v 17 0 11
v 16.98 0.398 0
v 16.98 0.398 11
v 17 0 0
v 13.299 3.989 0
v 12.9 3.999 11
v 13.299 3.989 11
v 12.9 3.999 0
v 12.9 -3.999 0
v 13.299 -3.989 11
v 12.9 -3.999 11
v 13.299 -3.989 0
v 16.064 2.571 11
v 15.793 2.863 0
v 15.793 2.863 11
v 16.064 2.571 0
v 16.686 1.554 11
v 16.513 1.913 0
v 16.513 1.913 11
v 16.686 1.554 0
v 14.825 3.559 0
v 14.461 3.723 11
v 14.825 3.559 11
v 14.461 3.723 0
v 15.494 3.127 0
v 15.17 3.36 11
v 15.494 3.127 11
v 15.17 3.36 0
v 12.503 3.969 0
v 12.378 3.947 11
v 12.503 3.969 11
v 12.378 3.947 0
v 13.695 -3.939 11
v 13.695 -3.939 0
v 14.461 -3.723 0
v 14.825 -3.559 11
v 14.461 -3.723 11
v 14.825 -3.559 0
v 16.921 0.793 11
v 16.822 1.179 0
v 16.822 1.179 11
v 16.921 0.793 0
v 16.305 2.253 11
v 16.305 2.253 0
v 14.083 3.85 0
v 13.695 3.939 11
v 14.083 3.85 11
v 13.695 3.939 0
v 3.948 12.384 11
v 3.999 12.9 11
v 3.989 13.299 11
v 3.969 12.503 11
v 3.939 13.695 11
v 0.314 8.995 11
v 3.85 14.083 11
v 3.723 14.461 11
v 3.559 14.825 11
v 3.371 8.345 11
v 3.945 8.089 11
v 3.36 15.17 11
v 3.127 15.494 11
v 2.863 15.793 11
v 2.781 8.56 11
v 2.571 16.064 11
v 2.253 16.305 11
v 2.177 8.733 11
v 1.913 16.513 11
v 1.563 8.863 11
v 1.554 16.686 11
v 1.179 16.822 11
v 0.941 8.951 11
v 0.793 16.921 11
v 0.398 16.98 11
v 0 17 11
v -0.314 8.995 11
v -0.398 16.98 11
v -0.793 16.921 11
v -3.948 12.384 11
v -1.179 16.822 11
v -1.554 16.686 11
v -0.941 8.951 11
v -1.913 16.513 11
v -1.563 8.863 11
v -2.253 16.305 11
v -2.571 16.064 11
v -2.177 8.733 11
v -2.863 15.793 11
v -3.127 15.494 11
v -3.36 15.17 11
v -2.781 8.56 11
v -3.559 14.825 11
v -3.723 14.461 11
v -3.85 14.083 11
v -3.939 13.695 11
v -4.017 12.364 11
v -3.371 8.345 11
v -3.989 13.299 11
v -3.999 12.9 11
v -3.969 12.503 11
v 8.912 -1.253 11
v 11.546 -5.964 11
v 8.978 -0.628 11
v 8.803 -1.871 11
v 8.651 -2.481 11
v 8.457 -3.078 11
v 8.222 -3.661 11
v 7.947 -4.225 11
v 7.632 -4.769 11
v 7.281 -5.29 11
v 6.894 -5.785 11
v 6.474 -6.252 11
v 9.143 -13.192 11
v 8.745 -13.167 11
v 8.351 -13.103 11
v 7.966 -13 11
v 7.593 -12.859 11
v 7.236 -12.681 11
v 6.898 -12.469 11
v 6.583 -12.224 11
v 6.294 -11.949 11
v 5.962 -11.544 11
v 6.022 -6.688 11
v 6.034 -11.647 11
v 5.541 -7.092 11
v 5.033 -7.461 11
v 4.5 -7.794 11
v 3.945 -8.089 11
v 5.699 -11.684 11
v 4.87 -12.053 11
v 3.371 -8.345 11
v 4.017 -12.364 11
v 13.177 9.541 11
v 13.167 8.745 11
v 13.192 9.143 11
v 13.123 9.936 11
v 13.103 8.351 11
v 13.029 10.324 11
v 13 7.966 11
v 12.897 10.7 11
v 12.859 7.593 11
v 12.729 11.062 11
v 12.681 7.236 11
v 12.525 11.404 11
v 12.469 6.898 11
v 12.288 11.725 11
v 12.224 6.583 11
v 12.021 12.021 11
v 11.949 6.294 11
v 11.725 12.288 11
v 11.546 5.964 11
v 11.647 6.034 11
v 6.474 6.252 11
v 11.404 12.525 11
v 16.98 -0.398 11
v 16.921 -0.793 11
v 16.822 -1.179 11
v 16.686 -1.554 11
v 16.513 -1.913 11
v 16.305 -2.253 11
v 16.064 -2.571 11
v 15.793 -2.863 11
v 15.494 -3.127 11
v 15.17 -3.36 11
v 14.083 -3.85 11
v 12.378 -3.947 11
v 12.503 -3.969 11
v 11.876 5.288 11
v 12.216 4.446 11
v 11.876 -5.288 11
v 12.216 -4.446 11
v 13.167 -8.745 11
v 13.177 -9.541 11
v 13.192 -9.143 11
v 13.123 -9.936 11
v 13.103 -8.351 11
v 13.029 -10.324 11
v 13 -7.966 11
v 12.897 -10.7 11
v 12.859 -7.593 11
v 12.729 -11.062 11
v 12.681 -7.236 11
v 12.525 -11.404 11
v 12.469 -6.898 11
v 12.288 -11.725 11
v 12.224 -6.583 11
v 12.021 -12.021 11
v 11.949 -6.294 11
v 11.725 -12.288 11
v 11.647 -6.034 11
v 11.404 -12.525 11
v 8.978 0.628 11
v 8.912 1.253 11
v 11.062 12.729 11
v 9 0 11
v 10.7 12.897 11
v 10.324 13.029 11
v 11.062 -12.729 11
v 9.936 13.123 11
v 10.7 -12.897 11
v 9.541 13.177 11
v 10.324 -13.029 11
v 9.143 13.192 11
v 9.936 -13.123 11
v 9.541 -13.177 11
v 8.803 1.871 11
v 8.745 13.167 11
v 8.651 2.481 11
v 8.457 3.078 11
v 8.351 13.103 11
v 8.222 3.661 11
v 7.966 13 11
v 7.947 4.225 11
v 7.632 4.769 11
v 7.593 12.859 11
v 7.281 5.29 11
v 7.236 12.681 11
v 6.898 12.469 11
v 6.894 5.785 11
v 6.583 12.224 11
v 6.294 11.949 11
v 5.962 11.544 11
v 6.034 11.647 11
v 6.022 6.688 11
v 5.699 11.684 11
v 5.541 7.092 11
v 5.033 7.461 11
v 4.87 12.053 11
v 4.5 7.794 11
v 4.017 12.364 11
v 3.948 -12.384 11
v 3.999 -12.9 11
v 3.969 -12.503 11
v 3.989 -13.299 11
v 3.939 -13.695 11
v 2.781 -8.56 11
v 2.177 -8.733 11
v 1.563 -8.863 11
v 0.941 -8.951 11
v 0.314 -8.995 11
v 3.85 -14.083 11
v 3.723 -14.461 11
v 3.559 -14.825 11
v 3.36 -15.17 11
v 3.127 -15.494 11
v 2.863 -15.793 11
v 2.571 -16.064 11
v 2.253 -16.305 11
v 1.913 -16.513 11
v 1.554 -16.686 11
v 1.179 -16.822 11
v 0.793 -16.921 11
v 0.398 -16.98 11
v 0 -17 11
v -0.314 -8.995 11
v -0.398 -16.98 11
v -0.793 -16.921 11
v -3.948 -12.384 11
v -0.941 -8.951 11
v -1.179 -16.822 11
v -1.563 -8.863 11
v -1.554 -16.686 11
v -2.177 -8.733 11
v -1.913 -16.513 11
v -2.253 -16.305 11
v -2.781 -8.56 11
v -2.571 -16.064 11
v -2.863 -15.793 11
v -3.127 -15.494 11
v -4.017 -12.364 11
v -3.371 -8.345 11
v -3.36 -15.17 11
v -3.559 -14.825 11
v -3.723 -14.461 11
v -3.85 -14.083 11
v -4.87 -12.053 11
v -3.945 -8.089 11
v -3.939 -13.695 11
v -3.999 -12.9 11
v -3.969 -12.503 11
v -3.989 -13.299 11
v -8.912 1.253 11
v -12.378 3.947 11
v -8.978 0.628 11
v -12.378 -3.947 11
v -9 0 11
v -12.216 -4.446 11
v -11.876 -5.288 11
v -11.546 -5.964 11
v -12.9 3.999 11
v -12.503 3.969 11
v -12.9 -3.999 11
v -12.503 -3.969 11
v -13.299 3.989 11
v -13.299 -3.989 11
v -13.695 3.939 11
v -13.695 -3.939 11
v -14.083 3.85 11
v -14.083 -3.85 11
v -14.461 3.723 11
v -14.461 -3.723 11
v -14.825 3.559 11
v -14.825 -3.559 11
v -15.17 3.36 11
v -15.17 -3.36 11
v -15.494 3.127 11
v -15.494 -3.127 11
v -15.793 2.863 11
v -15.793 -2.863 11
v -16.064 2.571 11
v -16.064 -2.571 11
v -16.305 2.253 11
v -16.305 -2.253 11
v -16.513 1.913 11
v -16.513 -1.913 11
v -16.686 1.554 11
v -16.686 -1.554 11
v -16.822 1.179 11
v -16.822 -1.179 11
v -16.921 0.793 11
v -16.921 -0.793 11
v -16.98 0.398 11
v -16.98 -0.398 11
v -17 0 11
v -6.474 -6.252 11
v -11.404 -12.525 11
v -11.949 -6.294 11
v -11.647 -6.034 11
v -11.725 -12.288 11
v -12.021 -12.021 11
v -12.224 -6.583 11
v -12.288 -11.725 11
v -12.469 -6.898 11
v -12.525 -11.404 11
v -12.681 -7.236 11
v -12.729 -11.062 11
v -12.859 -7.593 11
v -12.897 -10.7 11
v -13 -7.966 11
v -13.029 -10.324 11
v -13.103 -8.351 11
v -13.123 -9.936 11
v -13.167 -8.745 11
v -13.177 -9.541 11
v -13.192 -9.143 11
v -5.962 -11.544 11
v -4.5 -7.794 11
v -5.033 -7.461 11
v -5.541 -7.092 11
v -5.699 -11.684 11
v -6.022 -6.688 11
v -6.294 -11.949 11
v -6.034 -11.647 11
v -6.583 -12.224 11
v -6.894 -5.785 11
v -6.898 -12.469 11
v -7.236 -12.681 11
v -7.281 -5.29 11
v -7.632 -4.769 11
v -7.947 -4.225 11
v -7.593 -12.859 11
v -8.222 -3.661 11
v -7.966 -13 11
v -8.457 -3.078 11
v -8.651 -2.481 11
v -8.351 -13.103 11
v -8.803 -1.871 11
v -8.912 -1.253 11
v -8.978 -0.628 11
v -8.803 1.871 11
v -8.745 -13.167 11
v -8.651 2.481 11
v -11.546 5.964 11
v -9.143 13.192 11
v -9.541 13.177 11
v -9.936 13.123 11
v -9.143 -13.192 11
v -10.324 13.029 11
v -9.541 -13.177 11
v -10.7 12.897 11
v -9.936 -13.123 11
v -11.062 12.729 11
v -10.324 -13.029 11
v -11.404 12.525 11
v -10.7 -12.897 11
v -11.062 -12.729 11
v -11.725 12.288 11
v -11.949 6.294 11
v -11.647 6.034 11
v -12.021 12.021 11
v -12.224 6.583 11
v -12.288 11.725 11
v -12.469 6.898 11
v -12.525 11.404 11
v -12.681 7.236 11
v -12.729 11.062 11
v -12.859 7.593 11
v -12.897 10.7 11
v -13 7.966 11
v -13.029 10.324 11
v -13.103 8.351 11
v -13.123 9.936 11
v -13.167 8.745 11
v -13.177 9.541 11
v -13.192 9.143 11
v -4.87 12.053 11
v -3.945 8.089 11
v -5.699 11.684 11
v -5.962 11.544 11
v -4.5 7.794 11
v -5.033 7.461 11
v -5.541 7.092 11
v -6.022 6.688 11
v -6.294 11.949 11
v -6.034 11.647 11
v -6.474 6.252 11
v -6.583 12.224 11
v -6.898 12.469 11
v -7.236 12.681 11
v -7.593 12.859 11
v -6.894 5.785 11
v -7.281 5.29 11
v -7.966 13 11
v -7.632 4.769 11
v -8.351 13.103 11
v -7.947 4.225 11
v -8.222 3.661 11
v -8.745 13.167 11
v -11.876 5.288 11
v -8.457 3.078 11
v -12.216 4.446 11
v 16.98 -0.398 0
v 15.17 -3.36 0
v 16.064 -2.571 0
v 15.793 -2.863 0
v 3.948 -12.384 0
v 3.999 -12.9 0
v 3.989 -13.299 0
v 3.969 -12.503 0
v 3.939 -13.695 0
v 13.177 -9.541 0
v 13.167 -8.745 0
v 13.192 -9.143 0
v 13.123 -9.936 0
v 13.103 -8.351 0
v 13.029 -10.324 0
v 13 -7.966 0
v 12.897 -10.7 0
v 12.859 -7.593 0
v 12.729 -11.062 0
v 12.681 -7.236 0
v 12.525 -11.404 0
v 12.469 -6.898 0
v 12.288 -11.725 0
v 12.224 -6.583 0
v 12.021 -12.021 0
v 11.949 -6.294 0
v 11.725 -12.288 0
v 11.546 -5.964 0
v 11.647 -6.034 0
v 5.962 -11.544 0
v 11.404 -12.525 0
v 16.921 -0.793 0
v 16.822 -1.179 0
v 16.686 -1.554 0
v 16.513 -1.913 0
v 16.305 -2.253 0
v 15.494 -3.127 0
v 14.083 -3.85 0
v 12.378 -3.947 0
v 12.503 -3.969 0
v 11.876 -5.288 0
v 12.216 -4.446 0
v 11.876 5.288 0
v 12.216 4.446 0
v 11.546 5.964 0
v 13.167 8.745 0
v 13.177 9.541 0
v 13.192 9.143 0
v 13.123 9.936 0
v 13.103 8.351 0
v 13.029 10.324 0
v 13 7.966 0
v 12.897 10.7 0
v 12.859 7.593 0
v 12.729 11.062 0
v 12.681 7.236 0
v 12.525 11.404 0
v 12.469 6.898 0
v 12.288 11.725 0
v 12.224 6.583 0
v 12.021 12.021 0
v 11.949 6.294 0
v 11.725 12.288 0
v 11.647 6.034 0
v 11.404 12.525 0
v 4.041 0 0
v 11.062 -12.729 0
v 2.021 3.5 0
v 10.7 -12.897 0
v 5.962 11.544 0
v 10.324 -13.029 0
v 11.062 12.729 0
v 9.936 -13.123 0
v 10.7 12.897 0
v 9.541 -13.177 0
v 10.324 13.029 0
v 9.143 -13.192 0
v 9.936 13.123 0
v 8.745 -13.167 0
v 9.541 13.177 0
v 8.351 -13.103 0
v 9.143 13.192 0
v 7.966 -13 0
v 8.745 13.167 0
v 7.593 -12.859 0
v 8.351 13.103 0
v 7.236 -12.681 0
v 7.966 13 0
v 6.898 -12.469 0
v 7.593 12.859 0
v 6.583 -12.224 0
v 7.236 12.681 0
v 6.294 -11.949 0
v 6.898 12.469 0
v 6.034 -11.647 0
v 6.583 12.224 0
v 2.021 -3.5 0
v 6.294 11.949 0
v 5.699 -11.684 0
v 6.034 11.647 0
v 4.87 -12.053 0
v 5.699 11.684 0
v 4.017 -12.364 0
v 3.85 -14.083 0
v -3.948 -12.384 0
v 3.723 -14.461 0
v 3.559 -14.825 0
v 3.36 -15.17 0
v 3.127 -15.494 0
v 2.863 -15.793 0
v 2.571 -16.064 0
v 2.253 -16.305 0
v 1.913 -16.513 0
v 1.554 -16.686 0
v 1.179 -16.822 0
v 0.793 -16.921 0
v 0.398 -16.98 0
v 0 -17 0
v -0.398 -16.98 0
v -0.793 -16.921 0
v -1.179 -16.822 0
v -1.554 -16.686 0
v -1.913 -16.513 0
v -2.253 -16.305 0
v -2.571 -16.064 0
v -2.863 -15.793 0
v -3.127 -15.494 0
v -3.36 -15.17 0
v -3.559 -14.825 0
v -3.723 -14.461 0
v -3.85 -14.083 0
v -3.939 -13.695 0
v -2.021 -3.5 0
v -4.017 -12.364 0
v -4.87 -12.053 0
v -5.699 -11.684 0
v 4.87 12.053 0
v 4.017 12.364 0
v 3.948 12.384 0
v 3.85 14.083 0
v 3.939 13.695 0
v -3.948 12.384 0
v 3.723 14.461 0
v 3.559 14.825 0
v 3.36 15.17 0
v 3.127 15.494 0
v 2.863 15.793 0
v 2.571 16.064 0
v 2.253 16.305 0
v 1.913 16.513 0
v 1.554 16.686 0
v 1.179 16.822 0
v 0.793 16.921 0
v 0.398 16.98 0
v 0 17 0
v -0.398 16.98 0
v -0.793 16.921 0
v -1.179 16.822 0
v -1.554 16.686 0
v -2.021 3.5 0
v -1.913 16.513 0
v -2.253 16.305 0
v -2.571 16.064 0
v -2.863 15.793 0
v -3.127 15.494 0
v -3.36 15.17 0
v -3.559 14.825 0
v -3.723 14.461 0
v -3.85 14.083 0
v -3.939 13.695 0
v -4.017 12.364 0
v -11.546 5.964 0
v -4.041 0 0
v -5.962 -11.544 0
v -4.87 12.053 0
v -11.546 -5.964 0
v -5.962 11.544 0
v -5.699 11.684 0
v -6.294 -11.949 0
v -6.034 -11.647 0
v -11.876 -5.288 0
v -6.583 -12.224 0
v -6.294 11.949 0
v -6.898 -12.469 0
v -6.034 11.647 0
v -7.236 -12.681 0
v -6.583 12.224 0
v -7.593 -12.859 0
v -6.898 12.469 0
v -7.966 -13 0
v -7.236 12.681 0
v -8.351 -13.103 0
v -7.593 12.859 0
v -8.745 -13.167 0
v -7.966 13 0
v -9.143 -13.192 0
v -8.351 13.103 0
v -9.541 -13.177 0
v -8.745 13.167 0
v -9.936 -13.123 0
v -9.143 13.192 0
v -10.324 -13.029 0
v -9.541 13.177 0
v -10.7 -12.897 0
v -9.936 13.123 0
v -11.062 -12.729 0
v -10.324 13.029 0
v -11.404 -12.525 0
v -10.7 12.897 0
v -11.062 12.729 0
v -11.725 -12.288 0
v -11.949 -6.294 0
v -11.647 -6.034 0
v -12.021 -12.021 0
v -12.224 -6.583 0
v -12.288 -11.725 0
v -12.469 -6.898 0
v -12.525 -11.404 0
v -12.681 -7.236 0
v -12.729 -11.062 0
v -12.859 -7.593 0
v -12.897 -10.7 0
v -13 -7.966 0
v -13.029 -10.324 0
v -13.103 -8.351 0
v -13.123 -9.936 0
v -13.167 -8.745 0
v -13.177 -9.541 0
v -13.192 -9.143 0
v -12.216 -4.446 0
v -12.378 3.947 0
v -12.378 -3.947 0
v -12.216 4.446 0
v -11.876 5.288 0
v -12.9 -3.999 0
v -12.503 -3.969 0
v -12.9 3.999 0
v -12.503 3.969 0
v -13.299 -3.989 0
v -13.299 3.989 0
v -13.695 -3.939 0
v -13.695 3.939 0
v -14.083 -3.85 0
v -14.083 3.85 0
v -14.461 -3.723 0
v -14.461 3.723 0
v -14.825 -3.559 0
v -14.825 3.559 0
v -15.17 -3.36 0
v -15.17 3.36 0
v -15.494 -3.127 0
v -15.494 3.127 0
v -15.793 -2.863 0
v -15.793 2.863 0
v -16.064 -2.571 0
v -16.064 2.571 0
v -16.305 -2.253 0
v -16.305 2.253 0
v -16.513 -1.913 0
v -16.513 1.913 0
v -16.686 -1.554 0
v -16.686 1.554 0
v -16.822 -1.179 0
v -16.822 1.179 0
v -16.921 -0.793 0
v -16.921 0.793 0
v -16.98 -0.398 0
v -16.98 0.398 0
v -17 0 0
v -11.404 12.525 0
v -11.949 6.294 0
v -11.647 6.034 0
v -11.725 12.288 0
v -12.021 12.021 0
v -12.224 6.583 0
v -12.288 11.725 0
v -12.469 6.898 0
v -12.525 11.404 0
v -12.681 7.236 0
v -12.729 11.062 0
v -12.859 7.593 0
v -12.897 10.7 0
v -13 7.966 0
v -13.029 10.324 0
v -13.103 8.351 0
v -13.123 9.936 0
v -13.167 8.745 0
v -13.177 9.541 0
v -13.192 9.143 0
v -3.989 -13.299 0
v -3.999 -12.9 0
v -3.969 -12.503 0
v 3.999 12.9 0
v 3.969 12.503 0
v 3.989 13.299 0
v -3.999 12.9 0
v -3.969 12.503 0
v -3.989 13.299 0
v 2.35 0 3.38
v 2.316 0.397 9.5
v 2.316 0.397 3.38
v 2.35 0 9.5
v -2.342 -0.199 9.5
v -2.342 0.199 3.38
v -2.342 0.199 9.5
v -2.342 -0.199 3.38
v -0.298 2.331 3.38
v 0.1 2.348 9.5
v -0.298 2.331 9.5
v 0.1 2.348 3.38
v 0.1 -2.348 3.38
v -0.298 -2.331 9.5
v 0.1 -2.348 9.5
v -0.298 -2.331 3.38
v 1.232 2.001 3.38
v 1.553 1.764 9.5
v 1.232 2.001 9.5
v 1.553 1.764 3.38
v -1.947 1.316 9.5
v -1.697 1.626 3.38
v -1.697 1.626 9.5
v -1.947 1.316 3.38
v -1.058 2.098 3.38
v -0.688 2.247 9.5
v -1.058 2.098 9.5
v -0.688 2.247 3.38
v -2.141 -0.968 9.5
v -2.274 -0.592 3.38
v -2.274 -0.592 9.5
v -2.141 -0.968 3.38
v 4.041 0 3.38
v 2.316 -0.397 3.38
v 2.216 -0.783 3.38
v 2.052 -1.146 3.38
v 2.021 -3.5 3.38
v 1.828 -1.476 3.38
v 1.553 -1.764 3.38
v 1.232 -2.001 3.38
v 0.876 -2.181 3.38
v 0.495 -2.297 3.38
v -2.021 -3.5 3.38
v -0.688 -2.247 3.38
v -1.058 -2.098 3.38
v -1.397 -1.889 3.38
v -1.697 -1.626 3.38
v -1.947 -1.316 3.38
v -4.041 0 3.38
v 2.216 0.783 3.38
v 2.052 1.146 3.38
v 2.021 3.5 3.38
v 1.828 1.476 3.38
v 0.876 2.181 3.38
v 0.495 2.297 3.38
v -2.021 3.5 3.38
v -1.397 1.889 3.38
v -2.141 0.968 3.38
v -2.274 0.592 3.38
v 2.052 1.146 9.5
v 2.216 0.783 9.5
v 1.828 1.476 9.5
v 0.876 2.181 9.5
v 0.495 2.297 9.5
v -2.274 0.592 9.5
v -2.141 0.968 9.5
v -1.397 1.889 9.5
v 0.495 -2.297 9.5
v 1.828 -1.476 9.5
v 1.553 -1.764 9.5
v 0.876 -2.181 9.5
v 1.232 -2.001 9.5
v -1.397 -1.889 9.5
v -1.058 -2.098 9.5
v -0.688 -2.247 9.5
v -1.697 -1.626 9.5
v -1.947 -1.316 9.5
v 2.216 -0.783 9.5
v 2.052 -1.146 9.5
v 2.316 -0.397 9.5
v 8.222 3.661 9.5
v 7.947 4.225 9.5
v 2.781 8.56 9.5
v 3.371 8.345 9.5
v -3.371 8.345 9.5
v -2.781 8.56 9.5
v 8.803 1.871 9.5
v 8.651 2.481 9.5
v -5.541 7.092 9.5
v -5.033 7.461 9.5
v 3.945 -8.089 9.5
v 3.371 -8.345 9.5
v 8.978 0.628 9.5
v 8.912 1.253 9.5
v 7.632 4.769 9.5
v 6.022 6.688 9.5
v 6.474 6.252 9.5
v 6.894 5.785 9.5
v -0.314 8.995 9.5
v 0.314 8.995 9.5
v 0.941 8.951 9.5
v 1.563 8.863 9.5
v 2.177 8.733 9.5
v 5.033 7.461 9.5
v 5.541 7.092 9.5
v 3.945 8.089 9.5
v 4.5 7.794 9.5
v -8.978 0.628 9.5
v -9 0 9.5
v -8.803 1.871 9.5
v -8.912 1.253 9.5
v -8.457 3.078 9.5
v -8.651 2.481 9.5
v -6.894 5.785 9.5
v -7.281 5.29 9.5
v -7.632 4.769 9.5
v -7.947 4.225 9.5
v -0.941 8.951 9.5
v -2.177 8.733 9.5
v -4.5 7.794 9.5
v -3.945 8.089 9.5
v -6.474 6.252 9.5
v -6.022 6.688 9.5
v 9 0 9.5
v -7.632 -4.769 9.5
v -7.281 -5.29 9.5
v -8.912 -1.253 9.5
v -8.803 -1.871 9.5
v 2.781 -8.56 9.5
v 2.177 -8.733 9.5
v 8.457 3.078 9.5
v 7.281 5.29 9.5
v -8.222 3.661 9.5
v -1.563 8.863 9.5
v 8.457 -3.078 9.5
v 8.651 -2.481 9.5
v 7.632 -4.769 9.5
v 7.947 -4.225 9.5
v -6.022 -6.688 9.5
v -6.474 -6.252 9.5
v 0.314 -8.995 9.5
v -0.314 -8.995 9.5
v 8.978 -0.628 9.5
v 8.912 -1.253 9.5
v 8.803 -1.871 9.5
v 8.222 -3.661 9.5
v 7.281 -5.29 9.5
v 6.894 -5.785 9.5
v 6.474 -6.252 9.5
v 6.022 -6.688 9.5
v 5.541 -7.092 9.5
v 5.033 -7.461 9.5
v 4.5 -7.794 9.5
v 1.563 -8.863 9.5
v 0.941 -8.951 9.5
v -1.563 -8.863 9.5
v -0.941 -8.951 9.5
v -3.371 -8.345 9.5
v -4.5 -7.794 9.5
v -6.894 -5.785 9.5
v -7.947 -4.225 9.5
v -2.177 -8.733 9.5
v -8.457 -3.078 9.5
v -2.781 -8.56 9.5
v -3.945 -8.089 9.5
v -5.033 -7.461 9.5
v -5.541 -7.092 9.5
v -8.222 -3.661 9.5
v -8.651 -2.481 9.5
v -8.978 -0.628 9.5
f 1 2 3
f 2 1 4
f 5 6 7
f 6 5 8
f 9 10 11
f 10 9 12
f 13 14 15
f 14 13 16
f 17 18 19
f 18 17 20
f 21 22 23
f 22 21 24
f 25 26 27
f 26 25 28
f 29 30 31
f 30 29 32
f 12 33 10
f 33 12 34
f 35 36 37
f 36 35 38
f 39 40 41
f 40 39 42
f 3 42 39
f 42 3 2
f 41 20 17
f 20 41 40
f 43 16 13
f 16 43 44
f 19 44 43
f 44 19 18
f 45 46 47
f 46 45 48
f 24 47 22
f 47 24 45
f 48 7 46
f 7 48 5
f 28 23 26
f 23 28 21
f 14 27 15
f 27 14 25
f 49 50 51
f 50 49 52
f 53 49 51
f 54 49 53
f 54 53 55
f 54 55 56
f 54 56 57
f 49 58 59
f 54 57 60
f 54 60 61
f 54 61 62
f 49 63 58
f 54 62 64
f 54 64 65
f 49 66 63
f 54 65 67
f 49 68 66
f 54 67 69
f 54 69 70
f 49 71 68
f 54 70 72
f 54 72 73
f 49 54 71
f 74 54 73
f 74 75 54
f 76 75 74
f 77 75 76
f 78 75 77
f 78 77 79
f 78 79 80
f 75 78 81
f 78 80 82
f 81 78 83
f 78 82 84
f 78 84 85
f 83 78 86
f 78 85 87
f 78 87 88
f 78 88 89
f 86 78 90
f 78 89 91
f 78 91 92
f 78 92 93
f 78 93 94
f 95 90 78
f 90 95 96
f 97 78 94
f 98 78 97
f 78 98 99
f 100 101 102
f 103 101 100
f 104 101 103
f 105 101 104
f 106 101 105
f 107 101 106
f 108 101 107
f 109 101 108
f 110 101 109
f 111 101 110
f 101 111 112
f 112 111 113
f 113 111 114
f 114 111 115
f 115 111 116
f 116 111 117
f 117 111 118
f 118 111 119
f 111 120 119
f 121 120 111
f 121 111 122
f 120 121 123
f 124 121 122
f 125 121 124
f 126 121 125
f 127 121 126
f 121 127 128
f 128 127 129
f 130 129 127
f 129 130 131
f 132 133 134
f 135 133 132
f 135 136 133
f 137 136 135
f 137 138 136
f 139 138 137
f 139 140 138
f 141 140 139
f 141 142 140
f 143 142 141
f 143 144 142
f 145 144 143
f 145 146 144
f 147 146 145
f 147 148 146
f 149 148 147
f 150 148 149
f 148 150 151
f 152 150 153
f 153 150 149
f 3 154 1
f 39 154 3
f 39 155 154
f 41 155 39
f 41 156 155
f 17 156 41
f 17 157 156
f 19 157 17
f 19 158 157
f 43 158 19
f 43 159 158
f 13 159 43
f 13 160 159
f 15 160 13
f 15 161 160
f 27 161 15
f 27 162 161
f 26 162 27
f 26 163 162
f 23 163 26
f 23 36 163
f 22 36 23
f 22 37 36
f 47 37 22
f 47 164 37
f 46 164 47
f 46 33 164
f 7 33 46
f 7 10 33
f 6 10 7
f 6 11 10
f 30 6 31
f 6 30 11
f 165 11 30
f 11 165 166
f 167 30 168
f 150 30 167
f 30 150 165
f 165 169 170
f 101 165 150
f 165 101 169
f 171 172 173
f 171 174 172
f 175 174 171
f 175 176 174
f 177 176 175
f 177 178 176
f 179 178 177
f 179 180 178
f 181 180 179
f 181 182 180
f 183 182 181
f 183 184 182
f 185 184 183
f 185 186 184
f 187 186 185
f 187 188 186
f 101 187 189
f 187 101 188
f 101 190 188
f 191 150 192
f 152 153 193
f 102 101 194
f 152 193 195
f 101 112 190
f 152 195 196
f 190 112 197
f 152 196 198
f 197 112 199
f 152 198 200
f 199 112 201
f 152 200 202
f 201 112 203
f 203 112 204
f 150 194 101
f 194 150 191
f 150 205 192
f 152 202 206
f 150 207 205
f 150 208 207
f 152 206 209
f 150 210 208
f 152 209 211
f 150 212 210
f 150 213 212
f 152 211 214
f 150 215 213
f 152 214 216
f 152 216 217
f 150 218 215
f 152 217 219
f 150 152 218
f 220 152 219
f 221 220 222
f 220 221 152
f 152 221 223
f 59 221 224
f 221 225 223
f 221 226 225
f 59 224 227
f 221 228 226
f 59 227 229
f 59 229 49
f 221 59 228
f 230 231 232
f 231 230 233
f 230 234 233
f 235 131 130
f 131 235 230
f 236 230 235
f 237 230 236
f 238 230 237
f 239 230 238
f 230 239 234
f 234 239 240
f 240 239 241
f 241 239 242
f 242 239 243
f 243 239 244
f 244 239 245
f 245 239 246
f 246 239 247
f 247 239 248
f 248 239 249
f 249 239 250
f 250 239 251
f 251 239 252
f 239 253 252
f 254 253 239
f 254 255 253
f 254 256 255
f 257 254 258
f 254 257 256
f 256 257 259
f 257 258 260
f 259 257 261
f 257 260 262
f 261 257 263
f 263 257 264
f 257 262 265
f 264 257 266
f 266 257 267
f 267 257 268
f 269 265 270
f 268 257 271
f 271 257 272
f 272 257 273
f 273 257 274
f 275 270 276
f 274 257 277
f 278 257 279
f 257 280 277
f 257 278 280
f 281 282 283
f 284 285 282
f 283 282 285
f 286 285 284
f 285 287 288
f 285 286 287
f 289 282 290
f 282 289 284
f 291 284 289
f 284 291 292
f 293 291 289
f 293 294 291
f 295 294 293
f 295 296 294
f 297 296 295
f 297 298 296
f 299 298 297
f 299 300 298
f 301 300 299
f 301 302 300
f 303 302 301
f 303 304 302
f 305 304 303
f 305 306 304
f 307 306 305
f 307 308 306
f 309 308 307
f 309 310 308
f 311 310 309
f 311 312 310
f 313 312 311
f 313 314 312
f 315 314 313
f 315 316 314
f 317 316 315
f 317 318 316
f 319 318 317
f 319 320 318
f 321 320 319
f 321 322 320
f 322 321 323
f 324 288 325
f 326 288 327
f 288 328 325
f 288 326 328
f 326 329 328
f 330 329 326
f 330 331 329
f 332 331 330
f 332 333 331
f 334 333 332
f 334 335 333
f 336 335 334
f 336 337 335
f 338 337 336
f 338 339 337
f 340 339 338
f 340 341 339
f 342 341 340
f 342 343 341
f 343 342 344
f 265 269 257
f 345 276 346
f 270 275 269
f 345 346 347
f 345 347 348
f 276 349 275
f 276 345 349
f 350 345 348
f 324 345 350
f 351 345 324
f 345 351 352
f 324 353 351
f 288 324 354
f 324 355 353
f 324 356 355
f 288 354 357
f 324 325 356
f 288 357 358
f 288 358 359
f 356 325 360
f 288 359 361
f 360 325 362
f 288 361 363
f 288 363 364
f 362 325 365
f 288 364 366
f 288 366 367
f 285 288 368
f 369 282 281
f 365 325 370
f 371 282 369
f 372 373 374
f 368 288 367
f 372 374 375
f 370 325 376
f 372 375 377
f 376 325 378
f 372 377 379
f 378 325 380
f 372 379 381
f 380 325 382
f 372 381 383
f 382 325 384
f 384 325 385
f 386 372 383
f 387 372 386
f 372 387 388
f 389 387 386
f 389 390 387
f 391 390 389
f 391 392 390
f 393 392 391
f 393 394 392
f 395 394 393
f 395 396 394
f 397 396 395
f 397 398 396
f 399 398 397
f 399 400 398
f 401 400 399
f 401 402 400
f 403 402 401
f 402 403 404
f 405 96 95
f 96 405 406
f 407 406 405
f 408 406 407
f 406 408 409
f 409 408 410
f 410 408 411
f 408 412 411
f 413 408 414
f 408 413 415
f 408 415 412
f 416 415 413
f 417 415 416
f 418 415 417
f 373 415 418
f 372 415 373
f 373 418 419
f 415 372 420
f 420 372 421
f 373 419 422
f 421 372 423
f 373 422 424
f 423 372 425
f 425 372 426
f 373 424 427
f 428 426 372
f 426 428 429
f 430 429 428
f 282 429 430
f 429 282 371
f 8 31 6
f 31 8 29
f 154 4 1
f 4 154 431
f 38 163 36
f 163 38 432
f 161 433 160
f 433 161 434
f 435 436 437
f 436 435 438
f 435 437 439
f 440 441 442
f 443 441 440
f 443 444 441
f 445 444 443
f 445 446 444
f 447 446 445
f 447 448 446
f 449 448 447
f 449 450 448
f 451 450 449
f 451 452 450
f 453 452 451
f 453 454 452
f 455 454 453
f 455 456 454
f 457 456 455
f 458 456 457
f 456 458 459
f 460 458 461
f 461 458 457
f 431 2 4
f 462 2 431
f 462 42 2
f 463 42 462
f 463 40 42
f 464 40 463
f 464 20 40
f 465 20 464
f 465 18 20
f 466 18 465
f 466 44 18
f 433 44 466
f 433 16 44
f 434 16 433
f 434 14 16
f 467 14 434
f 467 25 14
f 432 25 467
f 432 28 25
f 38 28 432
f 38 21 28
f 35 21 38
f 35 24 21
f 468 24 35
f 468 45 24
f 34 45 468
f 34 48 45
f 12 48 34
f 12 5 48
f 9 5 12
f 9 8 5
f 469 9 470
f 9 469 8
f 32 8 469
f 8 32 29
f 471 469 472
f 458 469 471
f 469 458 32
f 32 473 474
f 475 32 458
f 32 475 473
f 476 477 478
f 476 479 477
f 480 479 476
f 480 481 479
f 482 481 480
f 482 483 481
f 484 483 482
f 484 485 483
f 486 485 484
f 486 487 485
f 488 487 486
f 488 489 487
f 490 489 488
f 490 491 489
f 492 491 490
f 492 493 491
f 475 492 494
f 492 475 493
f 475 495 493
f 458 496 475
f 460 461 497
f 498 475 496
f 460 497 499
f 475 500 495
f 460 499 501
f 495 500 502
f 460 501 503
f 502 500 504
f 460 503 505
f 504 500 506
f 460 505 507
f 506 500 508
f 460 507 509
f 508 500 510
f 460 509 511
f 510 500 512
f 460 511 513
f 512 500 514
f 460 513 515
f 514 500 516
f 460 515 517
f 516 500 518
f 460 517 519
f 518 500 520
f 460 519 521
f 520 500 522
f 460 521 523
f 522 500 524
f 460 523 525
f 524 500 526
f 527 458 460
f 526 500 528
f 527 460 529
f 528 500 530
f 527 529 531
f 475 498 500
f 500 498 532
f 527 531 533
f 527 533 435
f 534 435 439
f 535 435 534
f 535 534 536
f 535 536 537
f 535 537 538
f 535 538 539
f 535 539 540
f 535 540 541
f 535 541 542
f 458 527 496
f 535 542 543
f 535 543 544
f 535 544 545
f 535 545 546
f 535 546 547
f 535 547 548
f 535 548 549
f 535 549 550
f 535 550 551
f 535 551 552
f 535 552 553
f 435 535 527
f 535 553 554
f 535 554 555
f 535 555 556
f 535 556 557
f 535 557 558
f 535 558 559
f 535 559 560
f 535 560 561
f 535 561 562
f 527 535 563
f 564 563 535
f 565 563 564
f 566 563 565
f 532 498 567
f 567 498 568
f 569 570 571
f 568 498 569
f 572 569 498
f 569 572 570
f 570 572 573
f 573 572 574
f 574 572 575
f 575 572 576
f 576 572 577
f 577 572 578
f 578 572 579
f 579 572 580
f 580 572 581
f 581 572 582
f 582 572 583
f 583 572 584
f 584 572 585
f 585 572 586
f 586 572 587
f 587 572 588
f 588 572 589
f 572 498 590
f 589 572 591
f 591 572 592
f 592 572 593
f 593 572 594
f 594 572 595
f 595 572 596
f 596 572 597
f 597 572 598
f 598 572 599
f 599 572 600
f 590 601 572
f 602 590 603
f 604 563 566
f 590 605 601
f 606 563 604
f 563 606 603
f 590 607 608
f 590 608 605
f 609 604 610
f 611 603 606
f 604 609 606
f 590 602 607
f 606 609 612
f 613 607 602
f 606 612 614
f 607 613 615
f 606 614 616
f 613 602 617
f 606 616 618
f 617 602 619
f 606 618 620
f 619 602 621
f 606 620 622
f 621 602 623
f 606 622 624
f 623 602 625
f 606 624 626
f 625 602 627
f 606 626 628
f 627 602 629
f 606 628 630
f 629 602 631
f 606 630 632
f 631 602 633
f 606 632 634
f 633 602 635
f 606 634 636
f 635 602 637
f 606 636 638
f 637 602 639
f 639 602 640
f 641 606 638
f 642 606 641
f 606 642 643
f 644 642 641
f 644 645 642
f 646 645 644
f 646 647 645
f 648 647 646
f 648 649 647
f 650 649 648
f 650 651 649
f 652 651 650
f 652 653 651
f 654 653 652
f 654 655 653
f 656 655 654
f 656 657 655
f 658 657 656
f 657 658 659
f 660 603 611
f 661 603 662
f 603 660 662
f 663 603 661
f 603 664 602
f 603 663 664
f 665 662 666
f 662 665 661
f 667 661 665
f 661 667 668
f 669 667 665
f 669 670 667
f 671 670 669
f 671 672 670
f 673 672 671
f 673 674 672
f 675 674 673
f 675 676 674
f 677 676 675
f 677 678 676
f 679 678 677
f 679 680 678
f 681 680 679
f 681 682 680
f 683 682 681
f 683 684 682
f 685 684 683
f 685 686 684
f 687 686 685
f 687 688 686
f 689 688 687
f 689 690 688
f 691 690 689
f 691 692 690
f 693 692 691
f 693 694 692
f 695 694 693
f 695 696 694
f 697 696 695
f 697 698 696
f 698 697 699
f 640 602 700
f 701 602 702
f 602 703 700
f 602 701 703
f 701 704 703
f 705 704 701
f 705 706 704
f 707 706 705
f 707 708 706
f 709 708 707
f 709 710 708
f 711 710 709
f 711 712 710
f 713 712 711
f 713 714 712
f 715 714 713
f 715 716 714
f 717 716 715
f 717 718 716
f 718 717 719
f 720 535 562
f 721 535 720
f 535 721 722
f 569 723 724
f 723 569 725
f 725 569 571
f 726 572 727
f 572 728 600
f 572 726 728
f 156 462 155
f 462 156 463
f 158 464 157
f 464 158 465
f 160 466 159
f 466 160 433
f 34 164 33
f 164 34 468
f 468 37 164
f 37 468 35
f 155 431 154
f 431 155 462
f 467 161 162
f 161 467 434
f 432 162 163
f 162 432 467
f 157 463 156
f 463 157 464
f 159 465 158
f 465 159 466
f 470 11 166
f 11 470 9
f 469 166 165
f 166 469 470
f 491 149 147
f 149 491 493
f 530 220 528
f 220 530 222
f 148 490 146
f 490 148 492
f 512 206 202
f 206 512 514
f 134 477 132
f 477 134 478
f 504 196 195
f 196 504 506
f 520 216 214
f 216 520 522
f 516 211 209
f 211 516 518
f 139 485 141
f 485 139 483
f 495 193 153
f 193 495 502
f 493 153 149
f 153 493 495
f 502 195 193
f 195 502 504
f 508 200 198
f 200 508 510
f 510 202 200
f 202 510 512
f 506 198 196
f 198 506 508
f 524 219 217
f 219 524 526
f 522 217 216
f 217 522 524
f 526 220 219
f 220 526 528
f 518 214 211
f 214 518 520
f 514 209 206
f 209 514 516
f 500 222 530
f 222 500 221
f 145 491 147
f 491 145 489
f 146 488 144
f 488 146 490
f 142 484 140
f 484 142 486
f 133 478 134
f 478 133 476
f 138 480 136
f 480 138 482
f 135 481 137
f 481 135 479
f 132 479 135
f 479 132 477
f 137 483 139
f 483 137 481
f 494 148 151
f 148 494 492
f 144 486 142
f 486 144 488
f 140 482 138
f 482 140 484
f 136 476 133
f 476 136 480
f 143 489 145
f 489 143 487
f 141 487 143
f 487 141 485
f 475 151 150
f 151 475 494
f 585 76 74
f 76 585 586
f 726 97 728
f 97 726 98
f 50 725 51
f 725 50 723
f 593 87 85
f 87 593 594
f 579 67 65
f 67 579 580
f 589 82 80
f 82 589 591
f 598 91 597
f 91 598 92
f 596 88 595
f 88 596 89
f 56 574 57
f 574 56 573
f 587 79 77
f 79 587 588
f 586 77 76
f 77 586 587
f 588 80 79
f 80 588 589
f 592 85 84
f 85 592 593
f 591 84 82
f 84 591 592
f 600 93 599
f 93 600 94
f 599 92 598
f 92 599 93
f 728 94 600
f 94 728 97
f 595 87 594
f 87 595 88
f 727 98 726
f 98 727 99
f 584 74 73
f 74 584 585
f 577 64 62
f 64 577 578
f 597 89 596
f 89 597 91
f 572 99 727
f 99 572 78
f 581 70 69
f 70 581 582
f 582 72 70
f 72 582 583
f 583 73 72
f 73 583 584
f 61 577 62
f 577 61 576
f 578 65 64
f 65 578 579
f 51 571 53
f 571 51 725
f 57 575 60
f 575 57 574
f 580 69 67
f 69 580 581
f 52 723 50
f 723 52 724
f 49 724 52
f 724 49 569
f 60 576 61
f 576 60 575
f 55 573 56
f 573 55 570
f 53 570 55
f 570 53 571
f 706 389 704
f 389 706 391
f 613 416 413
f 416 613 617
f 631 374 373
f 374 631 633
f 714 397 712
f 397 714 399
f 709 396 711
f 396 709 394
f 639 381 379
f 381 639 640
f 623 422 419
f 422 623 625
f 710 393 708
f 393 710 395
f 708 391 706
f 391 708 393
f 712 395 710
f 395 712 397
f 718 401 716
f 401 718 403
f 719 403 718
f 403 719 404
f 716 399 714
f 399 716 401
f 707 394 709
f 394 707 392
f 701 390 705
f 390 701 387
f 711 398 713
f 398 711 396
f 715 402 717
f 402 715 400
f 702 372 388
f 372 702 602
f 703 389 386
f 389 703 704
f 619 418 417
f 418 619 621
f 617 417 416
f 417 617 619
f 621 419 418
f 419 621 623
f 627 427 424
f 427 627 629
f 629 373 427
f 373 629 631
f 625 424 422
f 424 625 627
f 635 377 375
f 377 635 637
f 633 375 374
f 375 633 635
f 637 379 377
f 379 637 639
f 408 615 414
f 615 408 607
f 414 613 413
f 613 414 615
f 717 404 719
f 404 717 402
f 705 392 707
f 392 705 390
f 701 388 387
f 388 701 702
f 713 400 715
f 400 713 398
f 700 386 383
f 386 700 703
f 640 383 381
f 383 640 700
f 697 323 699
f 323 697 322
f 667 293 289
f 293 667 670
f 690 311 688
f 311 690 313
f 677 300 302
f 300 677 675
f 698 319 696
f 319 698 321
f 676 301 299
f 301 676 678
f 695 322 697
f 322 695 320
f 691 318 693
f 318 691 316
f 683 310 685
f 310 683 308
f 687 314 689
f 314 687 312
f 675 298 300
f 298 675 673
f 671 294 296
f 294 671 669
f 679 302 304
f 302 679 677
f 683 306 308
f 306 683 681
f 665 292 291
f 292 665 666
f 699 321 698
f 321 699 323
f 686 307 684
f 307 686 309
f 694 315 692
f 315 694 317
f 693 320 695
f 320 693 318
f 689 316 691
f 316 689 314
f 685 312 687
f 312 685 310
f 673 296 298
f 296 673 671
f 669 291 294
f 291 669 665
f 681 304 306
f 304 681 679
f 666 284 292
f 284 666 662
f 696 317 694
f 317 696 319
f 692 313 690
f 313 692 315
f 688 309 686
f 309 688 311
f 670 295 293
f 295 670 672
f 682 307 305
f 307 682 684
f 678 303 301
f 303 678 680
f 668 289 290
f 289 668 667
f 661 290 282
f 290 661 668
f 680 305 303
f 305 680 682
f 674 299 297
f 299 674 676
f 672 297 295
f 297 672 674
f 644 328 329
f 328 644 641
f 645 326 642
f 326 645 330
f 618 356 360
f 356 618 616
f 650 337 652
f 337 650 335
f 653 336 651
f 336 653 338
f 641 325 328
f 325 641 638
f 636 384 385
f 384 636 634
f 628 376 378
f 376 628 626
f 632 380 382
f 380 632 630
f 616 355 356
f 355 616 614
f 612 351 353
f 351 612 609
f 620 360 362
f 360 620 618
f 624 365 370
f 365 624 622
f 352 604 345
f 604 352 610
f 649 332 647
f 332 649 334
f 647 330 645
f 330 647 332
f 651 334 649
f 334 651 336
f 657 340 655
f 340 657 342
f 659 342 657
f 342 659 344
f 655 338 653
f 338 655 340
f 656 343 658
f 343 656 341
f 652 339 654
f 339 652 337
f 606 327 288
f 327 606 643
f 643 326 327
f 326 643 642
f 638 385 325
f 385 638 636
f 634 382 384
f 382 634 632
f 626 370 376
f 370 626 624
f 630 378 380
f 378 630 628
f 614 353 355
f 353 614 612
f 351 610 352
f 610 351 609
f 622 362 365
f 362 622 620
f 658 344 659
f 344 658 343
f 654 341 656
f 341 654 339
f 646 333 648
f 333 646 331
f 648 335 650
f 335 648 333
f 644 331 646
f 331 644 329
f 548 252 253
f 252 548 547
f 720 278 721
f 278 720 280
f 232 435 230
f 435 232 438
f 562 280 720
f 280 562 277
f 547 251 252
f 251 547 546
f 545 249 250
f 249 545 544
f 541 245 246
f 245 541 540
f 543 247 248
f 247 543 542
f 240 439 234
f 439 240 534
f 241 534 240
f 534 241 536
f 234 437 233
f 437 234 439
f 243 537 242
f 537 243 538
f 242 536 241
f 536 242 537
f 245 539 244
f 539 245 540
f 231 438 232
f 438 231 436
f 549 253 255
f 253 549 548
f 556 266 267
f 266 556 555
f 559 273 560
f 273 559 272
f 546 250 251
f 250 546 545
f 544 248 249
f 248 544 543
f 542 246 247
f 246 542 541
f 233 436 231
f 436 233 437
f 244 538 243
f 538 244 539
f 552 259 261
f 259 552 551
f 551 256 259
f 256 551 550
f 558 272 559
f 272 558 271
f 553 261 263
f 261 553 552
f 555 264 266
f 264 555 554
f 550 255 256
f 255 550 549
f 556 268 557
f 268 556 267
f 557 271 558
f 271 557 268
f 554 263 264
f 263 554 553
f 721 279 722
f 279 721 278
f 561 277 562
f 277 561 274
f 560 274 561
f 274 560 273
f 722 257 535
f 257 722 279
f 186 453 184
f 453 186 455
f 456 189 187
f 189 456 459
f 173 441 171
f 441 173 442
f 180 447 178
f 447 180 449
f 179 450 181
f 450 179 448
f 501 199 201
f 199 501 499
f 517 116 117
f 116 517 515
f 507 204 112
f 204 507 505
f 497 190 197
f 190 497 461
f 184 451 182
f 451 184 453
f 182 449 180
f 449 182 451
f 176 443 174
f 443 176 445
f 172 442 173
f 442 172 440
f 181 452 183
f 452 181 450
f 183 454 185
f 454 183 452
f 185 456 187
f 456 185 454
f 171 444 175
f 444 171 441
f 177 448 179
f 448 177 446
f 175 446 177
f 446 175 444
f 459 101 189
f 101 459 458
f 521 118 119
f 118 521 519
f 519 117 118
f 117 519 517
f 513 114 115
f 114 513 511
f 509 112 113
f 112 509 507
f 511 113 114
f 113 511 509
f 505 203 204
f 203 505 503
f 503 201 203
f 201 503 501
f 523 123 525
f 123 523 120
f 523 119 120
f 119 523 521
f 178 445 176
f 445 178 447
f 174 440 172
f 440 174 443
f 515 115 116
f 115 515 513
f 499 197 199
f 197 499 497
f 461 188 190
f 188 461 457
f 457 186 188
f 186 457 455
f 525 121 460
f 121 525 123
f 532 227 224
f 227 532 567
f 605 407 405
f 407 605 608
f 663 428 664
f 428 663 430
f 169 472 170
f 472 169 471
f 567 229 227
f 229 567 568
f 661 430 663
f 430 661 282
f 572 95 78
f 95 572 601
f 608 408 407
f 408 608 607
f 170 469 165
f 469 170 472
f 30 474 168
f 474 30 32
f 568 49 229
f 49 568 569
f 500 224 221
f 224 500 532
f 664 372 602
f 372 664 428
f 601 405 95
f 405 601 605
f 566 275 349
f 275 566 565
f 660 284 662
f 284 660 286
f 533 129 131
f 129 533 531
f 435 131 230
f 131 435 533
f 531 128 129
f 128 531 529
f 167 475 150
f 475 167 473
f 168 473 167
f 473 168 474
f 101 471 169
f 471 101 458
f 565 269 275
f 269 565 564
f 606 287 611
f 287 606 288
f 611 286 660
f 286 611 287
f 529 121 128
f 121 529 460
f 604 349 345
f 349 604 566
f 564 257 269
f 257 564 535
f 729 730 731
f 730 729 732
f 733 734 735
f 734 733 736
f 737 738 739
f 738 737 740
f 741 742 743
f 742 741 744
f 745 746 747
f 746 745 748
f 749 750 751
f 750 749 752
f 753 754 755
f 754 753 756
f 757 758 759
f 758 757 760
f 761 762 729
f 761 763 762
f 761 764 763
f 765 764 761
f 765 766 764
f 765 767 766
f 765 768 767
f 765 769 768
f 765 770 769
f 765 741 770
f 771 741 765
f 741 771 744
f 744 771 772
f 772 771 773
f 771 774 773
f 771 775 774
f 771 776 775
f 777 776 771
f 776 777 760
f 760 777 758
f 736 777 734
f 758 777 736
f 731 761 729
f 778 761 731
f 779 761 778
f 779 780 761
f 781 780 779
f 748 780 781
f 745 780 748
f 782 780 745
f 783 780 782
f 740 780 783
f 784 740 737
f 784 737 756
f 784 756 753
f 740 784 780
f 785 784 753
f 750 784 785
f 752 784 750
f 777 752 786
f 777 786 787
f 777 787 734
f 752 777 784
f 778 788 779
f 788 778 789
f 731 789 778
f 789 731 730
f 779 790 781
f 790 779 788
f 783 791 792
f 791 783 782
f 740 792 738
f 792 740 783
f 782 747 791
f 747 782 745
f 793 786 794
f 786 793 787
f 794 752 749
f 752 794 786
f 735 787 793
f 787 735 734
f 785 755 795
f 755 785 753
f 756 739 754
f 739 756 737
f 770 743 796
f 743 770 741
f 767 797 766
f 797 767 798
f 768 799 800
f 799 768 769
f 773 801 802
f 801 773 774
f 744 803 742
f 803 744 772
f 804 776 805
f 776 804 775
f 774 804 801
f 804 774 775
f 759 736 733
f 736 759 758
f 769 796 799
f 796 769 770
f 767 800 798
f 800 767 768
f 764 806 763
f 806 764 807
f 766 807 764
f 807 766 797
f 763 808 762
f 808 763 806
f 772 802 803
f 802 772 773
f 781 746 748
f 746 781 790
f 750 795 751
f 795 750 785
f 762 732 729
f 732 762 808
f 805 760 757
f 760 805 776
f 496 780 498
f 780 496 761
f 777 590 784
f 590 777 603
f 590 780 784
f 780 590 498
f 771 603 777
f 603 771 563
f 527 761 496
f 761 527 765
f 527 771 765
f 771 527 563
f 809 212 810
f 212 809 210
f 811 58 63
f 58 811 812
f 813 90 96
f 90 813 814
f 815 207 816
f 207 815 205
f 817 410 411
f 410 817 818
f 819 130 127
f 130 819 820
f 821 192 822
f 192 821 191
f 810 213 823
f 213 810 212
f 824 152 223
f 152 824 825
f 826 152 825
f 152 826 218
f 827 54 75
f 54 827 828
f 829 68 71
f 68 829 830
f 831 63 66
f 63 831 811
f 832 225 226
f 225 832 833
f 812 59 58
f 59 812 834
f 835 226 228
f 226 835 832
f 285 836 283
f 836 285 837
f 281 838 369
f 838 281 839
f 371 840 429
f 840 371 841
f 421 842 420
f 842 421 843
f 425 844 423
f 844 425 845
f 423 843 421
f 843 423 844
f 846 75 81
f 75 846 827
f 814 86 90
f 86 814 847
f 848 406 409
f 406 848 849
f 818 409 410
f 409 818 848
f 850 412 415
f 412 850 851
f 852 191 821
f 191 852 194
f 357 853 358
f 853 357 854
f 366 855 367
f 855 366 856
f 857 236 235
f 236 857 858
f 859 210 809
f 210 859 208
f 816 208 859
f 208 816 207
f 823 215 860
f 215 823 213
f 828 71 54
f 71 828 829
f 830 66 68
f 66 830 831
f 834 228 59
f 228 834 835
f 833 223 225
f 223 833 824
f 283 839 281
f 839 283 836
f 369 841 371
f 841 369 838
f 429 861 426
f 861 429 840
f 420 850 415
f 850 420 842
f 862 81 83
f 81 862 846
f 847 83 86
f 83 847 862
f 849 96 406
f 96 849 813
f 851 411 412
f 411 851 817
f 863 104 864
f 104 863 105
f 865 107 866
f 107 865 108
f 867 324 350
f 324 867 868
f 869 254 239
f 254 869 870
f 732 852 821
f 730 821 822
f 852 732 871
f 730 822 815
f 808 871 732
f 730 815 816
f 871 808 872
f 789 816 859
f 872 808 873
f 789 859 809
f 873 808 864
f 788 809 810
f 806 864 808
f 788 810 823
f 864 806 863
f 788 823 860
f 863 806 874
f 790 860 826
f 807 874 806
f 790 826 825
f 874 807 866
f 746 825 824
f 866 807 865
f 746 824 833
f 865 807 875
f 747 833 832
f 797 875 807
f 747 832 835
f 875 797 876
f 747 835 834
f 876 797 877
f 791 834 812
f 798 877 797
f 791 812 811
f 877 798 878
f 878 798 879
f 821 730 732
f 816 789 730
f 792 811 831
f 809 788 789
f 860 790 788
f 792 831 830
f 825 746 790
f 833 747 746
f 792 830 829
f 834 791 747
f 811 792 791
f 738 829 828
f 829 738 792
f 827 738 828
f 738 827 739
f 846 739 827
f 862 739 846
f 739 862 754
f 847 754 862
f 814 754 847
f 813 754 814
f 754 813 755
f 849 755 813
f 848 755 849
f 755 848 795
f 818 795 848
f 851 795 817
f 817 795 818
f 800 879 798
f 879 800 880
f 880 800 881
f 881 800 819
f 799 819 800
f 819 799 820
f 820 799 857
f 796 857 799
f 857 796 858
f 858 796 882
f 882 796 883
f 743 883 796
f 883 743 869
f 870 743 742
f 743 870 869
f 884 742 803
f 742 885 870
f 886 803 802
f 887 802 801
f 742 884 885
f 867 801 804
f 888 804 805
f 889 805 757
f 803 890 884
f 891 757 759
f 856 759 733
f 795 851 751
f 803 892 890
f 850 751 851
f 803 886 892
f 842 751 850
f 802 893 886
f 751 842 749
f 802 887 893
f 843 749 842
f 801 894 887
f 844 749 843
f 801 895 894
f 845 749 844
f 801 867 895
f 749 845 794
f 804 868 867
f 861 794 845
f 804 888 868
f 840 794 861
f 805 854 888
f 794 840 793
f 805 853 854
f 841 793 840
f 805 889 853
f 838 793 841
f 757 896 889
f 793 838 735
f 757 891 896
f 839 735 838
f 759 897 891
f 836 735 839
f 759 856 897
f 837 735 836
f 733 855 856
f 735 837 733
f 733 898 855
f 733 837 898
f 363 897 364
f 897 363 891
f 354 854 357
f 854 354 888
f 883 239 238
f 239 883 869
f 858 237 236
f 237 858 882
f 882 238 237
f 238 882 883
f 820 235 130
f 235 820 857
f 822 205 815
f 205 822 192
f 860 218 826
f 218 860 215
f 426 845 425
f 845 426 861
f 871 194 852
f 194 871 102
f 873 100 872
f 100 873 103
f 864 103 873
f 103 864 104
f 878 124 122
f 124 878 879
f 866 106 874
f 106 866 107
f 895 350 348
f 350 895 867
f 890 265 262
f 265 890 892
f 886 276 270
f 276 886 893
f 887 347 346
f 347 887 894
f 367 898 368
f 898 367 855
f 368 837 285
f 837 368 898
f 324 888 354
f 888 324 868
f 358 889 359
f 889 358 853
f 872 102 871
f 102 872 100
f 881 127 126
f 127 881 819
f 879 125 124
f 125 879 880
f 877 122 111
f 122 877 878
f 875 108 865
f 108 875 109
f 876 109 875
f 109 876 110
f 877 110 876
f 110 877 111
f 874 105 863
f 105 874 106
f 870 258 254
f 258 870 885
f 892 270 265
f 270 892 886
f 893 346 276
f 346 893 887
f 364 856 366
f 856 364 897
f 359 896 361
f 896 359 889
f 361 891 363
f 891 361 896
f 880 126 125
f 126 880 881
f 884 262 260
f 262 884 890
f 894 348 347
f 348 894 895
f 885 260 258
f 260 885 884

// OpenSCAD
// =====================================================================
//  AquaFeeder -- manipulo do parafuso de aperto da bracadeira
//  Encaixe por pressao na cabeca de um parafuso M4 (sextavado 7mm).
//  Se o seu parafuso for de cabeca cilindrica com fenda, use uma chave.
// =====================================================================
include <common.scad>

module knob() {
    difference() {
        union() {
            cylinder(d = 26, h = 11);
            for (a = [0 : 45 : 359])
                rotate([0, 0, a]) translate([13, 0, 0]) cylinder(d = 8, h = 11);
        }
        // passagem da rosca
        translate([0, 0, 3.4 - eps]) cylinder(d = m4_free + 0.3, h = 12);
        // alojamento da cabeca sextavada M4
        translate([0, 0, -eps]) nut_trap(7.0 + fit, 3.4);
        // rebaixo estetico
        translate([0, 0, 9.5]) cylinder(d = 18, h = 2);
    }
}

knob();
